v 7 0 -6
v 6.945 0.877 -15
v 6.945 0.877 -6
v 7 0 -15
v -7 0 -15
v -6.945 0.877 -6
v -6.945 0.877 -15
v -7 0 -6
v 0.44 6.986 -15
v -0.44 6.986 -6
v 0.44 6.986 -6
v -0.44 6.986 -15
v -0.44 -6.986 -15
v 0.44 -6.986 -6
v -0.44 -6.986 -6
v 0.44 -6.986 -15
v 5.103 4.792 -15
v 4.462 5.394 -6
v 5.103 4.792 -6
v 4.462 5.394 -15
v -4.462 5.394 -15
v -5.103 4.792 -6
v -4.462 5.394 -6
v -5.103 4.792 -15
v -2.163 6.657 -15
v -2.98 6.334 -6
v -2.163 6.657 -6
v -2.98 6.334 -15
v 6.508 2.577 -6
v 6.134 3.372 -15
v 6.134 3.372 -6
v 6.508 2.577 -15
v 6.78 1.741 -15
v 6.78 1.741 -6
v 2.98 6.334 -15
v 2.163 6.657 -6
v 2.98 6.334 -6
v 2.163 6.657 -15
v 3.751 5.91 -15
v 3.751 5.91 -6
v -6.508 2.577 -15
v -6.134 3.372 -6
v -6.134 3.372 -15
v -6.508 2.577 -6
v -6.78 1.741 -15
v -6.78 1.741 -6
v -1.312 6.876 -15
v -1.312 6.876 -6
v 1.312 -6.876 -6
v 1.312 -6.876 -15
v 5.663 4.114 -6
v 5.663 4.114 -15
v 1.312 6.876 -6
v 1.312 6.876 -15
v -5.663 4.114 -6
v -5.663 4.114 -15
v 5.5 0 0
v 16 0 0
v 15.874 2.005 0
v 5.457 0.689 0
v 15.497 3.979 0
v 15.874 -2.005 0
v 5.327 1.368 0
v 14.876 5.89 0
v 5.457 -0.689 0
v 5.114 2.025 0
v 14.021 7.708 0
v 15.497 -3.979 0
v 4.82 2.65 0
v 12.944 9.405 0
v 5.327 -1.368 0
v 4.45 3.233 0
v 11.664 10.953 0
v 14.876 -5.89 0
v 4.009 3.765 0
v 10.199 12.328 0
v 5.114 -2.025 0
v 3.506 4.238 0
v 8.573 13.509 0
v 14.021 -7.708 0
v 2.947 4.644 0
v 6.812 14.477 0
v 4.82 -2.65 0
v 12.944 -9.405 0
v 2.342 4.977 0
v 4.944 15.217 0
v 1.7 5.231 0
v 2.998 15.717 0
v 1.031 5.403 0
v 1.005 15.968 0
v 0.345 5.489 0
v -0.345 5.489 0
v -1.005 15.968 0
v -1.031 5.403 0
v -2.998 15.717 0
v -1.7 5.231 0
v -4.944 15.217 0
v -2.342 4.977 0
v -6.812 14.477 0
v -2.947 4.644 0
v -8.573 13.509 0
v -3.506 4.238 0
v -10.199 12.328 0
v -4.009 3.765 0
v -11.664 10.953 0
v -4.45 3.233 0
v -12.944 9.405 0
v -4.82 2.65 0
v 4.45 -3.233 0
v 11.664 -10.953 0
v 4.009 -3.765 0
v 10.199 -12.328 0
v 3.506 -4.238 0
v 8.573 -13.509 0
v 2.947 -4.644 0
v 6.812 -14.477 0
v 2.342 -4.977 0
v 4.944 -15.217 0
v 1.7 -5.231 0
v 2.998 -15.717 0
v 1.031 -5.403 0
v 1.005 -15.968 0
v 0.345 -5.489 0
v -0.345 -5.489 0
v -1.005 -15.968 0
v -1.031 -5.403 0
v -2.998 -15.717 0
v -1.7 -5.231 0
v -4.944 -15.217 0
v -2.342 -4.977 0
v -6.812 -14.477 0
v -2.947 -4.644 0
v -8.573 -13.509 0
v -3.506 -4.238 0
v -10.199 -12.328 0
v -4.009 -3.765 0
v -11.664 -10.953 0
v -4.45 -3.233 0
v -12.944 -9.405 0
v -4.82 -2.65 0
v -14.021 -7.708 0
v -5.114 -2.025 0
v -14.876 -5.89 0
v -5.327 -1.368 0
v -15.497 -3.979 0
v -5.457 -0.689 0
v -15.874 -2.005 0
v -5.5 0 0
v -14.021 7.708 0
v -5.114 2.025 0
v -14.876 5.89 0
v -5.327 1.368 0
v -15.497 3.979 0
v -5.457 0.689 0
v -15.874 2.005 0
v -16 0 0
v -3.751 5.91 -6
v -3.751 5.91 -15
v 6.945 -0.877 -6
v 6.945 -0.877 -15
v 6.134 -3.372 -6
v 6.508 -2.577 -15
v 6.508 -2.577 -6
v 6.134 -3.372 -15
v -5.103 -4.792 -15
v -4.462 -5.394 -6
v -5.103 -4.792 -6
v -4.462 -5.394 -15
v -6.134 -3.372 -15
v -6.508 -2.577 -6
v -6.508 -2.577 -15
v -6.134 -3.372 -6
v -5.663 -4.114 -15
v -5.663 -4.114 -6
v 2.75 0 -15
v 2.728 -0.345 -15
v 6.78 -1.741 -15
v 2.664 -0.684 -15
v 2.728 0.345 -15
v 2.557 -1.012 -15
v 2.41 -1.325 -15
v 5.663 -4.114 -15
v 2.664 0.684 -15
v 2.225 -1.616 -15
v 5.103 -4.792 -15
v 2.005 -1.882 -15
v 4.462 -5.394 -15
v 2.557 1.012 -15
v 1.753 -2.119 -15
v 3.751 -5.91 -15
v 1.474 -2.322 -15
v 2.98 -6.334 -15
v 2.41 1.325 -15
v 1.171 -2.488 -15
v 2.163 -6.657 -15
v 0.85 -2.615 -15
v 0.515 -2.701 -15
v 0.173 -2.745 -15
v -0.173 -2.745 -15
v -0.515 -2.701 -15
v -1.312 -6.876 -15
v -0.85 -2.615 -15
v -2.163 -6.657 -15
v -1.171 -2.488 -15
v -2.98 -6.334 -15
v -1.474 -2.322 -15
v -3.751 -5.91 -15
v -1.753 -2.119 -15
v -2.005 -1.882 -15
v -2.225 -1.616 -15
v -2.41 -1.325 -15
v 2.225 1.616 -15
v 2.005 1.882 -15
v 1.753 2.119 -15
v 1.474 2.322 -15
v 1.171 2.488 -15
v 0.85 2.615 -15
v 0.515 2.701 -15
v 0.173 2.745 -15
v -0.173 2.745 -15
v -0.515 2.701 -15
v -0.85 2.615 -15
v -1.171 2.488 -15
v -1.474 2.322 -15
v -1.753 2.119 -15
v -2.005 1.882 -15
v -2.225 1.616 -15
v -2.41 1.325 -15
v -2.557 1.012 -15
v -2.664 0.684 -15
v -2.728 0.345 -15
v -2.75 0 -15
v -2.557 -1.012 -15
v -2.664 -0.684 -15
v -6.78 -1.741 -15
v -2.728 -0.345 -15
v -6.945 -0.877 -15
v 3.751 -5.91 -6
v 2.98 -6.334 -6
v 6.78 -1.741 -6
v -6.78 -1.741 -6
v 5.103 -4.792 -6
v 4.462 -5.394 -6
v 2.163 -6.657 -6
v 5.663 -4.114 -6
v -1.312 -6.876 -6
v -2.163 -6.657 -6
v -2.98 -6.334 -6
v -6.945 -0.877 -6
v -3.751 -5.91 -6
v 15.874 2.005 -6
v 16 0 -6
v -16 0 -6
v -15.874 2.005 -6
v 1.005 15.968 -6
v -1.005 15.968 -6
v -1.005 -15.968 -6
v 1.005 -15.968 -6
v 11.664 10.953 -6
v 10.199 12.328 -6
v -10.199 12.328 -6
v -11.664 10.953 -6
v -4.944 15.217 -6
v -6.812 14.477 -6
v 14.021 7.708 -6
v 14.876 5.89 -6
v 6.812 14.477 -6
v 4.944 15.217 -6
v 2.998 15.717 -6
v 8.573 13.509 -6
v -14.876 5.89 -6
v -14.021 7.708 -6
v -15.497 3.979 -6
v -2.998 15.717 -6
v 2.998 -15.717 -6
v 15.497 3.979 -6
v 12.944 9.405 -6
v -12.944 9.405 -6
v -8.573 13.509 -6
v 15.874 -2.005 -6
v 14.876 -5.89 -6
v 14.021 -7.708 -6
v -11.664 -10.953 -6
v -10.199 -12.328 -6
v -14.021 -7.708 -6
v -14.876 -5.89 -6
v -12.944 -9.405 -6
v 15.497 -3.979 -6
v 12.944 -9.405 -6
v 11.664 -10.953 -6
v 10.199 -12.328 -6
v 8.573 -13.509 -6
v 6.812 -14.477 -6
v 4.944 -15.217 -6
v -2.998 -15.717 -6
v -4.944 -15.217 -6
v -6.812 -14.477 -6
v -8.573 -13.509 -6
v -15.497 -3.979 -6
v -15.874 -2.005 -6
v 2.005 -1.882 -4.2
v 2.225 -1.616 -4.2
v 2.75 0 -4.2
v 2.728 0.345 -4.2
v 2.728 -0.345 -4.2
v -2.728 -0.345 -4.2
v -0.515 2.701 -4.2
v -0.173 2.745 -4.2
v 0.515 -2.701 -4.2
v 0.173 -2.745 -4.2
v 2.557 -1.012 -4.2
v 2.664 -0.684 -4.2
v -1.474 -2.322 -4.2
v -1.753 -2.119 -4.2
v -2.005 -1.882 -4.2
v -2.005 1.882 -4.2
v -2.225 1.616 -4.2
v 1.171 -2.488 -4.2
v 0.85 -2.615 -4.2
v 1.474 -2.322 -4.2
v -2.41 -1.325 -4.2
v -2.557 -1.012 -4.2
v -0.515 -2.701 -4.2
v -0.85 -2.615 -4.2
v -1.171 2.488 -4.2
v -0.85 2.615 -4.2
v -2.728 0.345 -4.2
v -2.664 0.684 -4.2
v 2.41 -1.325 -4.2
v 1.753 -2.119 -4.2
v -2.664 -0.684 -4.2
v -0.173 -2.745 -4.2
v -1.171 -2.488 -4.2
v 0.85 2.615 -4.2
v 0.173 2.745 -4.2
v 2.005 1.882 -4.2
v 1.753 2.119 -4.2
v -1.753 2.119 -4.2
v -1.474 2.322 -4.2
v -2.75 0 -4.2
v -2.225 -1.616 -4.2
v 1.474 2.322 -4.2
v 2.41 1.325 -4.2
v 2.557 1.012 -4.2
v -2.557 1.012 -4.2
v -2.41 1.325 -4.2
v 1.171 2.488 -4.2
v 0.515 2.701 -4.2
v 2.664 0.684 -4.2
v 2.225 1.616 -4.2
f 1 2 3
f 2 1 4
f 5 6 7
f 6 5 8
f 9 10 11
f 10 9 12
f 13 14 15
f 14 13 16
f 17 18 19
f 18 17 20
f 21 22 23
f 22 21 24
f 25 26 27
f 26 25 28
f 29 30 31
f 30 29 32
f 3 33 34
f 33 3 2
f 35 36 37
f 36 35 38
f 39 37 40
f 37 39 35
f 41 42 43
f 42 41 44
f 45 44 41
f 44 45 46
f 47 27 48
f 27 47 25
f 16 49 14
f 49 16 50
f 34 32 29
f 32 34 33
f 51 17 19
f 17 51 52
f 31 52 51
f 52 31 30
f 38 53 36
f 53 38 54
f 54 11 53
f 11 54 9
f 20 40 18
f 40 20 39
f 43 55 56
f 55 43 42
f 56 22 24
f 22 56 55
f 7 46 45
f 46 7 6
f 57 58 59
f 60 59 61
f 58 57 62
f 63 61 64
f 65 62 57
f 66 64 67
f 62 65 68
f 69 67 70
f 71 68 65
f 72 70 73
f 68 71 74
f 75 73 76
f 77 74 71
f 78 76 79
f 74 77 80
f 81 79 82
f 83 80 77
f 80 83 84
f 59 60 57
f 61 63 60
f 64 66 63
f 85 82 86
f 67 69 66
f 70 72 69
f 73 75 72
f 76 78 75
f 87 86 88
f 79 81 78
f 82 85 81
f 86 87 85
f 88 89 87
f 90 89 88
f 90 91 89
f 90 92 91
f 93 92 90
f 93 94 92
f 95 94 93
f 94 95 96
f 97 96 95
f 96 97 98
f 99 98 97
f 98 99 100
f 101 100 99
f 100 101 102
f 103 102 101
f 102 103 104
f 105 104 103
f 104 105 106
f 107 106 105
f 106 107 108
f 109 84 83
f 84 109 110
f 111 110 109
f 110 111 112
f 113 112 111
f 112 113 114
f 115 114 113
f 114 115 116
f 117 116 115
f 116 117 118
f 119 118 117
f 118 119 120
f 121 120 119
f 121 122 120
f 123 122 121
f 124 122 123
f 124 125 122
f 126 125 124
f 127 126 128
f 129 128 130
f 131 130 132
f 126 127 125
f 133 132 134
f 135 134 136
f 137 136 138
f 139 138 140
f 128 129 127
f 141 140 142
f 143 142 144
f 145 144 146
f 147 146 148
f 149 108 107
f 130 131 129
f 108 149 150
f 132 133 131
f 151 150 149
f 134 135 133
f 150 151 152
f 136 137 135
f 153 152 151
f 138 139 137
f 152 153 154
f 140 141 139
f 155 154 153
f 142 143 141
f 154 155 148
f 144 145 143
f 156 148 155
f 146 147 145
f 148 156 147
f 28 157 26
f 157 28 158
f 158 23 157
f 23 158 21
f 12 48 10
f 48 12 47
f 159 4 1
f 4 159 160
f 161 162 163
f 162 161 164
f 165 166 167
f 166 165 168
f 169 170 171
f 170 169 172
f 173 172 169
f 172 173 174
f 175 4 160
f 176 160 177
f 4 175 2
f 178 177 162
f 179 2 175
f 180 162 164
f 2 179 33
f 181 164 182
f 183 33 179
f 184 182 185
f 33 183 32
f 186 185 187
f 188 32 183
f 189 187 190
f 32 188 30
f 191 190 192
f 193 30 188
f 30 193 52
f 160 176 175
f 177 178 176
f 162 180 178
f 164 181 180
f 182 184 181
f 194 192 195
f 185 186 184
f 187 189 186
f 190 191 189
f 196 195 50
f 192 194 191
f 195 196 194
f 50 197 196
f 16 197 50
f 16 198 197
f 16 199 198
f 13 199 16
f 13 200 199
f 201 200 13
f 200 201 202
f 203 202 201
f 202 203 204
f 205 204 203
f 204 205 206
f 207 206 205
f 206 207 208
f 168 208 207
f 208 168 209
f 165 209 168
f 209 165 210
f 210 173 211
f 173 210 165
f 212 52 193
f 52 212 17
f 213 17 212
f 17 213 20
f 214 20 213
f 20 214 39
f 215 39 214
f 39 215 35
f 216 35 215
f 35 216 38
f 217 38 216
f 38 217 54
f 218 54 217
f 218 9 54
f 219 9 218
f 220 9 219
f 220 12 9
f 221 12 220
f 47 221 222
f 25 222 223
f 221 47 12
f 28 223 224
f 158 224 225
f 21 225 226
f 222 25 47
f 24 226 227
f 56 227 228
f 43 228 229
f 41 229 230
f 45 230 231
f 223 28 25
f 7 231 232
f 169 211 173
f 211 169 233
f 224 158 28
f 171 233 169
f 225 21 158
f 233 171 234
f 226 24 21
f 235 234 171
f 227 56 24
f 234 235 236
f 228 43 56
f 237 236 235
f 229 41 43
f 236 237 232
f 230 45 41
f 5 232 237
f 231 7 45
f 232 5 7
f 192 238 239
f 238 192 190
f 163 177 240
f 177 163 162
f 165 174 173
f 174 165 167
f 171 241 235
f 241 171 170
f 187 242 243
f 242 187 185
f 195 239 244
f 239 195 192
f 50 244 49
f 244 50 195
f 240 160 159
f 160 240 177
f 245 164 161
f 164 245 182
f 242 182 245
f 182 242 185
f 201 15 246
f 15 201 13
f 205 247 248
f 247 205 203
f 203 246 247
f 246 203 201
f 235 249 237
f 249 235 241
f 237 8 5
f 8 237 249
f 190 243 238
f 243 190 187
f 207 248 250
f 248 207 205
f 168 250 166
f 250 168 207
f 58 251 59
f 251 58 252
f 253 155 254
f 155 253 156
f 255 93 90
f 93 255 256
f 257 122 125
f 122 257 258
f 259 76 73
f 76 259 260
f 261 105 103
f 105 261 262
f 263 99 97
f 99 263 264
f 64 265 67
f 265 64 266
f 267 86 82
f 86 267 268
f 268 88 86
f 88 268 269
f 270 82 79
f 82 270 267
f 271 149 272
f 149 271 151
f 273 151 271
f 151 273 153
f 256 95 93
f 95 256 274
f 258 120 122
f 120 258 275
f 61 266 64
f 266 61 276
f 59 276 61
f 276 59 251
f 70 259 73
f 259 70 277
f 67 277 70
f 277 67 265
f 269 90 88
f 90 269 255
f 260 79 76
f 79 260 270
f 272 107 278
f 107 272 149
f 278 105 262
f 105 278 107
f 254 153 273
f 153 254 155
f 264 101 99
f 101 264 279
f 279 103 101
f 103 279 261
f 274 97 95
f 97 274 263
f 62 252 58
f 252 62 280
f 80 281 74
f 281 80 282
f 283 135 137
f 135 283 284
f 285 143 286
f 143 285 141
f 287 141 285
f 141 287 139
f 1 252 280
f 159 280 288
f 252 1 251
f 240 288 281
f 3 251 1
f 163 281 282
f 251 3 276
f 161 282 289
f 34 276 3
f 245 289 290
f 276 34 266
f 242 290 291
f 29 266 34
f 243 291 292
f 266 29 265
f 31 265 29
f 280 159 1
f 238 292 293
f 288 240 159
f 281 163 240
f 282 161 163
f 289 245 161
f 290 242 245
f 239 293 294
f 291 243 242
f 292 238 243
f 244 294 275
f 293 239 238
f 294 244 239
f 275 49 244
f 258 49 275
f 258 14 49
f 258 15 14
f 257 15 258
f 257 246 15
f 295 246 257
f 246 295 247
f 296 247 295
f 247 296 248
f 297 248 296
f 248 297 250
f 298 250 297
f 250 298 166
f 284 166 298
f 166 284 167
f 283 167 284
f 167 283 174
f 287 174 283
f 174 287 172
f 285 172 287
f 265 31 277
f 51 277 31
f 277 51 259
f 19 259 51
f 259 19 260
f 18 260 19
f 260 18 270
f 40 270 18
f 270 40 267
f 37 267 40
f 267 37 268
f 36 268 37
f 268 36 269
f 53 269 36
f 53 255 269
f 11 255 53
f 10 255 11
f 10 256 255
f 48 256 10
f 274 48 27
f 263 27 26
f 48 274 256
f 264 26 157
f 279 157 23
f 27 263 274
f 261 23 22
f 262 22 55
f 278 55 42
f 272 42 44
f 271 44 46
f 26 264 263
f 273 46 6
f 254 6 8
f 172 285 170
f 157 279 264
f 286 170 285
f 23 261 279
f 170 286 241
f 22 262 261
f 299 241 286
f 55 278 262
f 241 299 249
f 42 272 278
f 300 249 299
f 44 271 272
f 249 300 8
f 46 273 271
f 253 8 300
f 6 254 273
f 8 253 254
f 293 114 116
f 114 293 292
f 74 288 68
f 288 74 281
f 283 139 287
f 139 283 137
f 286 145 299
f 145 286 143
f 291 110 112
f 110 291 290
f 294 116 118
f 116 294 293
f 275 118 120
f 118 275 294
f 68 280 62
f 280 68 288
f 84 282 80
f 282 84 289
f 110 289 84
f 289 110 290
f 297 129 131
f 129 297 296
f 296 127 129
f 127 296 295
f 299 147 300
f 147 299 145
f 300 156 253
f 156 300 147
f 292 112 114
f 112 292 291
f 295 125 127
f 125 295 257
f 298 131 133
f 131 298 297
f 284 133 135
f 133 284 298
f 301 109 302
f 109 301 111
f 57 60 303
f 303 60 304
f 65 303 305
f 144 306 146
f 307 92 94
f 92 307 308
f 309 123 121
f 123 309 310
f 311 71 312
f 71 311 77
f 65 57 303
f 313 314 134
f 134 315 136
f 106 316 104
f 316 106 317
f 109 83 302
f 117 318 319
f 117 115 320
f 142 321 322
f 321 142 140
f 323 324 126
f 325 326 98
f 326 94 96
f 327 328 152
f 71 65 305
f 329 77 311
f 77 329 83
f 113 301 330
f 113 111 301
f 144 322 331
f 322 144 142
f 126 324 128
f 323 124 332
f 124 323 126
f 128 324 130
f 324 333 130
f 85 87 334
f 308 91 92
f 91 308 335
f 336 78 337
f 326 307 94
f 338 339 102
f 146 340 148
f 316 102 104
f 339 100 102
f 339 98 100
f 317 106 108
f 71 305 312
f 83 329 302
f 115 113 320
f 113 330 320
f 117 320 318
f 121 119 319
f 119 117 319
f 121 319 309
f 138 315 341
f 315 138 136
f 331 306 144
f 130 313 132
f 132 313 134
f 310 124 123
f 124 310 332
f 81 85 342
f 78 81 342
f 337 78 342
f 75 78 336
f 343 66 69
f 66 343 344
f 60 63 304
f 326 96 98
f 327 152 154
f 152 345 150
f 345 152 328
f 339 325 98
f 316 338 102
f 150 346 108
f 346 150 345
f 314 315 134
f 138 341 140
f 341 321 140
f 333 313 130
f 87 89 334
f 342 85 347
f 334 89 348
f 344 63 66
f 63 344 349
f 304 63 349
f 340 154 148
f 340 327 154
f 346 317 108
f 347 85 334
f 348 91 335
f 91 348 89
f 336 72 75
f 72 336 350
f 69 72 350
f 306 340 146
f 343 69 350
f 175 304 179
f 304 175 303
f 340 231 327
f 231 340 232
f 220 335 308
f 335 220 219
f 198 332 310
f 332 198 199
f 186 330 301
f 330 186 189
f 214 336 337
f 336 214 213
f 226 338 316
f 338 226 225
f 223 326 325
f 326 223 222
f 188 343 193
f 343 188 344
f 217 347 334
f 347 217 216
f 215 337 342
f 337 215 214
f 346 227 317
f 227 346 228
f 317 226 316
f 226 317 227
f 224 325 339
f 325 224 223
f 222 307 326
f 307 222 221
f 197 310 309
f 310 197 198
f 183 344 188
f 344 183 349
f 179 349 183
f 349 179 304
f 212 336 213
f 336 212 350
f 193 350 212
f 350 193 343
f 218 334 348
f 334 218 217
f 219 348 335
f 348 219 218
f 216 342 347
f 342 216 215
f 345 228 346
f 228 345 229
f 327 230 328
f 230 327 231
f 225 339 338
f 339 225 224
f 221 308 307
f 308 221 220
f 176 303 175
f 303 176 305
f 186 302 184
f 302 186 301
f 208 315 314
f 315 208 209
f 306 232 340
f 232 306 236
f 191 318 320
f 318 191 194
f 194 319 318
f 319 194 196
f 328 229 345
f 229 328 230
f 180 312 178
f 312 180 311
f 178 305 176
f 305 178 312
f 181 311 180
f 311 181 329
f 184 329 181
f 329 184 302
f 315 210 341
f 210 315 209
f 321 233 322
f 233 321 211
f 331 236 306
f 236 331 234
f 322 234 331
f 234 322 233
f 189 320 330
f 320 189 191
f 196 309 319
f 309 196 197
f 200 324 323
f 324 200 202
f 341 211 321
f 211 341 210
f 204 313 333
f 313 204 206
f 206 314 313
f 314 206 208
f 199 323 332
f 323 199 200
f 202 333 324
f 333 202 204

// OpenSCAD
$fn = 50;


difference() {
	union() {
		translate(v = [0, 0, -15.0000000000]) {
			cylinder(h = 15, r = 7.0000000000);
		}
		translate(v = [0, 0, -6.0000000000]) {
			cylinder(h = 6, r = 16.0000000000);
		}
	}
	union() {
		translate(v = [0, 0, 0]) {
			rotate(a = [0, 0, 0]) {
				difference() {
					union() {
						#translate(v = [0, 0, -15.0000000000]) {
							cylinder(h = 15, r = 2.2500000000);
						}
						#translate(v = [0, 0, -4.2000000000]) {
							cylinder(h = 4.2000000000, r1 = 2.7500000000, r2 = 5.5000000000);
						}
						#translate(v = [0, 0, -15.0000000000]) {
							cylinder(h = 15, r = 2.7500000000);
						}
						#translate(v = [0, 0, -15.0000000000]) {
							cylinder(h = 15, r = 2.2500000000);
						}
					}
					union();
				}
			}
		}
	}
}
